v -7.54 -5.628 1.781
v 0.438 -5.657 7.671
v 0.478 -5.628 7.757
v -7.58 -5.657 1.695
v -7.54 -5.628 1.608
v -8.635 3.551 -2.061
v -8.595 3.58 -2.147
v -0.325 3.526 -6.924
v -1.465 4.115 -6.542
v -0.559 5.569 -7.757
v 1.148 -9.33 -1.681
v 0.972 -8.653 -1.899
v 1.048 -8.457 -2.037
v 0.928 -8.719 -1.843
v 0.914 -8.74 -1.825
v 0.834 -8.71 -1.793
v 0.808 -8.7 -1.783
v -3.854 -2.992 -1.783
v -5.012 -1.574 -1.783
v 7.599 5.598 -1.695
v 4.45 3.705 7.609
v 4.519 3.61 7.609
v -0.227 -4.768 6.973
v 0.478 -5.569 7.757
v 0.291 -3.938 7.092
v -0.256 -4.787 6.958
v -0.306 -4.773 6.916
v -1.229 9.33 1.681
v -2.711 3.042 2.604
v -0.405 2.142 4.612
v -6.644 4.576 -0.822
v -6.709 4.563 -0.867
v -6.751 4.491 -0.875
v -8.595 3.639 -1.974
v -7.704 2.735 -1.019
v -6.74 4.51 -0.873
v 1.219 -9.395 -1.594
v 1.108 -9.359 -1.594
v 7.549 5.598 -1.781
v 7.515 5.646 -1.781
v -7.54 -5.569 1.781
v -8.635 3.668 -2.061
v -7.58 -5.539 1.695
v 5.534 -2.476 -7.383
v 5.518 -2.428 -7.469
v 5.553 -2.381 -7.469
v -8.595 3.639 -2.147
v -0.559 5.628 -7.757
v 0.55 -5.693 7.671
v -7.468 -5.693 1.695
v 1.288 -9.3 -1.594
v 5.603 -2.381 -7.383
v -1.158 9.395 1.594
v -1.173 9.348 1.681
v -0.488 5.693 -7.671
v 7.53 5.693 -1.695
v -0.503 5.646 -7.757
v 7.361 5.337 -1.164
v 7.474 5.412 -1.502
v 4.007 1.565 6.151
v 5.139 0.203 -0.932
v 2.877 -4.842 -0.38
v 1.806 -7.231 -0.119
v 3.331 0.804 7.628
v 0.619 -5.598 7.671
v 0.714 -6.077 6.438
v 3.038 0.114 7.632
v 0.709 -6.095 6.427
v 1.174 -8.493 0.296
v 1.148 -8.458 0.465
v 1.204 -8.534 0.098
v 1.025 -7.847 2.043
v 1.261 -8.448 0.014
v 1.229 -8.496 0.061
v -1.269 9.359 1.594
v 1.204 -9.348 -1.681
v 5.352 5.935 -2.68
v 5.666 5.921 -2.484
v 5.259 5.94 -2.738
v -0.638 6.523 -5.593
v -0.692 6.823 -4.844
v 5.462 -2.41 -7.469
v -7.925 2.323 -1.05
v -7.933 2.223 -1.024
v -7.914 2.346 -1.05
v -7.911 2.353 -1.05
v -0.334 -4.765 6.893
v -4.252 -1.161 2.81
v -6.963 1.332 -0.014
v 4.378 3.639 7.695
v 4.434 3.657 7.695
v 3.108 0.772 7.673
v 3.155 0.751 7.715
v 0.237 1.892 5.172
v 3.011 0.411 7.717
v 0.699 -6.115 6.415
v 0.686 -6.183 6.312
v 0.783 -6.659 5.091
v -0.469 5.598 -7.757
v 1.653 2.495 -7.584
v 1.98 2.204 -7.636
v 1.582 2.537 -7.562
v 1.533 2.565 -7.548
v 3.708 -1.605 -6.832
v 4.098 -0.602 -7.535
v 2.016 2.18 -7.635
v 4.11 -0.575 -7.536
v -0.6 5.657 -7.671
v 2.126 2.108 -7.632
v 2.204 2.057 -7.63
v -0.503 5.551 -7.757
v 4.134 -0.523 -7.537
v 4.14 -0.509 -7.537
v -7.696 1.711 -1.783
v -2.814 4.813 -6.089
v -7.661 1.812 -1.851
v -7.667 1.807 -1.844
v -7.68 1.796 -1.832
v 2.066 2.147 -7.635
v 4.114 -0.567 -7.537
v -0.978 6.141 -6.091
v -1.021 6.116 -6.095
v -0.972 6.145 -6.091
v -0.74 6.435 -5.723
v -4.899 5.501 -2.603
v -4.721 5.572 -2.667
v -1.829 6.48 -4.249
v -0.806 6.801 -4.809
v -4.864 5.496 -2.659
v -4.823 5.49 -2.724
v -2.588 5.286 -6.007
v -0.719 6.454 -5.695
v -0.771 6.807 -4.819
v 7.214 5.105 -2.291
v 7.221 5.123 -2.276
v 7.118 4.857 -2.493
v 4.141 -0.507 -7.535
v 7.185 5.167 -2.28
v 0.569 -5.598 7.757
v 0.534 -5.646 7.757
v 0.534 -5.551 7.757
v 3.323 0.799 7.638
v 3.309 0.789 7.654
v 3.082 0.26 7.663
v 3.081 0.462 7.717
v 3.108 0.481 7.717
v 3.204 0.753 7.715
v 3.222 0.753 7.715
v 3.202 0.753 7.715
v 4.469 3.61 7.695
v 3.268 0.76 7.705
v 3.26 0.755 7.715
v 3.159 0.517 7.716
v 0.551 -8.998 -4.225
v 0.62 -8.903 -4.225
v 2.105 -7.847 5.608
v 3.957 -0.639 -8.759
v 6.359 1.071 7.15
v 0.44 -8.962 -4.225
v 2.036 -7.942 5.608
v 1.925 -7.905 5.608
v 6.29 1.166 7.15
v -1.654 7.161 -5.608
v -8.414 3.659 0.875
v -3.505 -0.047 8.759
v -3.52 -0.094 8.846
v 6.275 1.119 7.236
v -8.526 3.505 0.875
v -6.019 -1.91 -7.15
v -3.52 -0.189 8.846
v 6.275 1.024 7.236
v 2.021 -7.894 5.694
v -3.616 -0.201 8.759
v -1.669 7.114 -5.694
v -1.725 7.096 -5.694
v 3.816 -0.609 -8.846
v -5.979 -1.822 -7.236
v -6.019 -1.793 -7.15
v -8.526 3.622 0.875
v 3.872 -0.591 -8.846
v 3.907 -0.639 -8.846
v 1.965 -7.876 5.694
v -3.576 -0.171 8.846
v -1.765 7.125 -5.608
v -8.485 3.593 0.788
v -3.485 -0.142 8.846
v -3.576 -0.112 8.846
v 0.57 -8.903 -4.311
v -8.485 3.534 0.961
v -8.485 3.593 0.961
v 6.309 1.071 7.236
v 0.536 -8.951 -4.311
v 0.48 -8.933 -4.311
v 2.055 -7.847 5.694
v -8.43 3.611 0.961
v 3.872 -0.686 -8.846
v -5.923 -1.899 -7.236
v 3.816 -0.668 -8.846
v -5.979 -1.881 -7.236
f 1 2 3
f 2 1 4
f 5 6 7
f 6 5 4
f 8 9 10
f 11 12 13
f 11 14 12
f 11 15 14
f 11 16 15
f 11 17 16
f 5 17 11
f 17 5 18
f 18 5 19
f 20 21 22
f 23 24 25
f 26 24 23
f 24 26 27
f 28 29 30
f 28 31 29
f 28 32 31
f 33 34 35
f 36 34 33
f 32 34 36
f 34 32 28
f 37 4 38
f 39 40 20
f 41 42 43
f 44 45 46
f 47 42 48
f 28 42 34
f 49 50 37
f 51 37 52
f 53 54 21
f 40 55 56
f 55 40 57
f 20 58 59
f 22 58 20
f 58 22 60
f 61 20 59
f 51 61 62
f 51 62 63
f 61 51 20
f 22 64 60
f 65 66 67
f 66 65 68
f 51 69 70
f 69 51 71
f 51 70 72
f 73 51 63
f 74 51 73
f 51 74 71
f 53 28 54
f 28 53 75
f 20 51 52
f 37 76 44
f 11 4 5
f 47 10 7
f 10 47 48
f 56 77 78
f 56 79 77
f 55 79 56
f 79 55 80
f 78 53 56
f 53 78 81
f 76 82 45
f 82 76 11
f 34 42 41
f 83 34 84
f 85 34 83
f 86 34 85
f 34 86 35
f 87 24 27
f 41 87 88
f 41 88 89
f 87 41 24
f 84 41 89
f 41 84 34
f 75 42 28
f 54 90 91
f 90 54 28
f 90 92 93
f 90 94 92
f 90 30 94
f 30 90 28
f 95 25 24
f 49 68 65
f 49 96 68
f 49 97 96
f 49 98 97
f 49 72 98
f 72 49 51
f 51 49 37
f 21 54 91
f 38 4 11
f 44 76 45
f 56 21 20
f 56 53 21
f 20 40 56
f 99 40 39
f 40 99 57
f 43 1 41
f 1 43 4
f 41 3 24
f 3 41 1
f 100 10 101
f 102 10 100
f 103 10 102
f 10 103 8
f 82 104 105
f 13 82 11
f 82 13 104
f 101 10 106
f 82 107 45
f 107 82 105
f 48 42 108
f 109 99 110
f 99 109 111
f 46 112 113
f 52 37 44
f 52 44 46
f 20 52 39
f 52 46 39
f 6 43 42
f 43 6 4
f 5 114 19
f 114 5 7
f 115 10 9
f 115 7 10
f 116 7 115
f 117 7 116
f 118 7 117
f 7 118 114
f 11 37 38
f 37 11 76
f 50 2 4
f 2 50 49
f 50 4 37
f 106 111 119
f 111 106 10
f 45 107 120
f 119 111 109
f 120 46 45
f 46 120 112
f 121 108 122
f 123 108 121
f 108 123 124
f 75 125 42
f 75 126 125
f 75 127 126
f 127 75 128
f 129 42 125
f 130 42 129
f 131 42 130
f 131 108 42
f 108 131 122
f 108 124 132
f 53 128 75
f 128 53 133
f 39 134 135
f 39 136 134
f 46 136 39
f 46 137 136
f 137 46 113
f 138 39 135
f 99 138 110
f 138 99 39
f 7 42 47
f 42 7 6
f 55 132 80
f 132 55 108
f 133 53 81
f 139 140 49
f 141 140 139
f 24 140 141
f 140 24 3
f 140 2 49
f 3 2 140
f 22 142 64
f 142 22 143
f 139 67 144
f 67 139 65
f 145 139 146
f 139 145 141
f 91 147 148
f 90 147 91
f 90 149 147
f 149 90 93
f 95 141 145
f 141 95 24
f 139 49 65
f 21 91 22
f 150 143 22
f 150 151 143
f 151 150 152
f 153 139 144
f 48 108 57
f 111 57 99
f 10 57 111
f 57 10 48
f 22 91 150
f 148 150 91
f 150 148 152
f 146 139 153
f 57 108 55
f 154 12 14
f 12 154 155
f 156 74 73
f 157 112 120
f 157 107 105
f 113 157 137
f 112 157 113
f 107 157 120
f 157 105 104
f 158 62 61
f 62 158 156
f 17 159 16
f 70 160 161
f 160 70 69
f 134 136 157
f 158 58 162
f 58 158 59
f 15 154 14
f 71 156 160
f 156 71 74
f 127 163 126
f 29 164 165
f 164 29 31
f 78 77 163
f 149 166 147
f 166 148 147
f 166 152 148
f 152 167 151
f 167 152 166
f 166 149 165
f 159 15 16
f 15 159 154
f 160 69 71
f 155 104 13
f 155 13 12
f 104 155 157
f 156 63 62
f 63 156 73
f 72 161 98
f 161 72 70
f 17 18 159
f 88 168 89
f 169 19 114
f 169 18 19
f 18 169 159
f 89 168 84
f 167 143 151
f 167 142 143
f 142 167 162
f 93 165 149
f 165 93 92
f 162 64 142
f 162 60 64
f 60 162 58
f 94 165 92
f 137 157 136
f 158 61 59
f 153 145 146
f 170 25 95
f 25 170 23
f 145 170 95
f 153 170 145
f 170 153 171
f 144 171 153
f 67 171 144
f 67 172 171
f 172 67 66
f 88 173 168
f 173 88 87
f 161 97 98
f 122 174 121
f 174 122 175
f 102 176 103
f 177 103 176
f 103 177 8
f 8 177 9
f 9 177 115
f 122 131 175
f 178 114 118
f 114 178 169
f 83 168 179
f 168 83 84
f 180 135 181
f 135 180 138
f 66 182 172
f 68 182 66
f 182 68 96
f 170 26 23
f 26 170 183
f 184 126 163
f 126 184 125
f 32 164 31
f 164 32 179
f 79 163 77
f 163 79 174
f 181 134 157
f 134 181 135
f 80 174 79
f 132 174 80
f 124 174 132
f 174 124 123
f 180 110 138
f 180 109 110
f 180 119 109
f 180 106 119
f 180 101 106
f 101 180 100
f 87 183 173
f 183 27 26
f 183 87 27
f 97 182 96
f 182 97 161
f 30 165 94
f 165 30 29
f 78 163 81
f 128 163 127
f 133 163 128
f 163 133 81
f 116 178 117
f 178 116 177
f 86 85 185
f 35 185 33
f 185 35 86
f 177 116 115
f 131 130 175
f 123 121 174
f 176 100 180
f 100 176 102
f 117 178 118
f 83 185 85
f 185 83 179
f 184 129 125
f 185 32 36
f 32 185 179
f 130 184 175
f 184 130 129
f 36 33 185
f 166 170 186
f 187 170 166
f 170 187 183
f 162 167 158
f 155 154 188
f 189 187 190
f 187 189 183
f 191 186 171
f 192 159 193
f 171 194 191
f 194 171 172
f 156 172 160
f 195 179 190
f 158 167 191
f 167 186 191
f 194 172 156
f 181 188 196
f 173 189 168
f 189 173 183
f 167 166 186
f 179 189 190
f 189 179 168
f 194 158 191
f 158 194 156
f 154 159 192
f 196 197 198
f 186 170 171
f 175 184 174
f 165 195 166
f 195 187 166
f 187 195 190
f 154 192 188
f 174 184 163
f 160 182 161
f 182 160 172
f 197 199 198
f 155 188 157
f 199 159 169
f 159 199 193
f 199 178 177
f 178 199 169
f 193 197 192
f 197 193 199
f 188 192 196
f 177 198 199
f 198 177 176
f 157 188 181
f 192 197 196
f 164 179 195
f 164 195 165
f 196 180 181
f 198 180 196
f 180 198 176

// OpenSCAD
// Auto-generated OpenSCAD file

    inner_points = 10*[[0.20054969961687025, -0.7846648703547799, 0.5607849288864212], [-0.593825213987971, -0.18515141359460924, -0.7149838983501856], [0.6259312435012088, 0.10711605562361853, 0.7149838983501856], [-0.16844367010363231, 0.7066295123837892, -0.5607849288864212], [0.05204957726190045, -0.8903315309220826, -0.42246593966397755], [0.7403313734536651, 0.5526003178298201, -0.17296676604139943], [-0.35354696868411156, -0.01417916531901519, 0.8759494264322145], [-0.8444976651021647, 0.3563405276717107, 0.08748092941239895], [0.3856529981973495, -0.06385619265197554, -0.8759494264322145]];

    outer_points = 10*[[0.05186484528504093, -0.5598217429238111, 0.7670841877921737], [0.7499238660434013, 0.5598217429238111, -0.16947657205566397], [-0.7499238660434013, -0.5598217429238111, 0.16947657205566397], [-0.05186484528504093, 0.5598217429238111, -0.7670841877921737], [0.44189511281724014, 0.3609594235595834, 0.7608846831151523], [-0.8554262739081575, 0.3609594235595834, -0.20606475108230704], [0.11884163653508852, -0.9300334806470967, -0.15944556277482932], [0.5502658375172237, -0.23805575111085425, -0.7382719448902207], [-0.11884163653508852, 0.9300334806470967, 0.15944556277482932]];

    // Convex hull for inner set (I)
    module inner_hull() {
        hull() {
            for (p = inner_points) {
                translate(p) sphere(r=0.1);
            }
        }
    }

    // Convex hull for outer set (O) minus inner hull (O \ I)
    module outer_minus_inner() {
        difference() {
            hull() {
                for (p = outer_points) {
                    translate(p) sphere(r=0.1);
                }
            }
            inner_hull(); // Subtract inner hull
        }
    }

    // Convex hull for outer set (O) minus all translated inner hulls
    module outer_minus_AllTranslationInner() {
        difference() {
            hull() {
                for (p = outer_points) {
                    translate(p) sphere(r=0.1);
                }
            }
            hull() {
                translate([0,0,50]) inner_hull();
                translate([0,0,-50]) inner_hull();
            }; // Subtract translated inner hulls
        }
    }

    // Difference between outer_minus_inner and outer_minus_AllTranslationInner
    module outer_minus_inner_diff() {
        difference() {
            // Outer minus inner
            difference() {
                hull() {
                    for (p = outer_points) {
                        translate(p) sphere(r=0.1);
                    }
                }
                inner_hull();
            }

            // Subtract Outer minus AllTranslationInner
            difference() {
                hull() {
                    for (p = outer_points) {
                        translate(p) sphere(r=0.1);
                    }
                }
                hull() {
                    translate([0,0,50]) inner_hull();
                    translate([0,0,-50]) inner_hull();
                };
            }
        }
    }

    // Rendering all with colors applied
    color([1, 0, 0, 0.5]) inner_hull(); // Transparent red
    color([0, 1, 0, 1]) outer_minus_AllTranslationInner(); // Opaque green
    color([1, 1, 0, 1]) outer_minus_inner_diff(); // Opaque yellow
    
